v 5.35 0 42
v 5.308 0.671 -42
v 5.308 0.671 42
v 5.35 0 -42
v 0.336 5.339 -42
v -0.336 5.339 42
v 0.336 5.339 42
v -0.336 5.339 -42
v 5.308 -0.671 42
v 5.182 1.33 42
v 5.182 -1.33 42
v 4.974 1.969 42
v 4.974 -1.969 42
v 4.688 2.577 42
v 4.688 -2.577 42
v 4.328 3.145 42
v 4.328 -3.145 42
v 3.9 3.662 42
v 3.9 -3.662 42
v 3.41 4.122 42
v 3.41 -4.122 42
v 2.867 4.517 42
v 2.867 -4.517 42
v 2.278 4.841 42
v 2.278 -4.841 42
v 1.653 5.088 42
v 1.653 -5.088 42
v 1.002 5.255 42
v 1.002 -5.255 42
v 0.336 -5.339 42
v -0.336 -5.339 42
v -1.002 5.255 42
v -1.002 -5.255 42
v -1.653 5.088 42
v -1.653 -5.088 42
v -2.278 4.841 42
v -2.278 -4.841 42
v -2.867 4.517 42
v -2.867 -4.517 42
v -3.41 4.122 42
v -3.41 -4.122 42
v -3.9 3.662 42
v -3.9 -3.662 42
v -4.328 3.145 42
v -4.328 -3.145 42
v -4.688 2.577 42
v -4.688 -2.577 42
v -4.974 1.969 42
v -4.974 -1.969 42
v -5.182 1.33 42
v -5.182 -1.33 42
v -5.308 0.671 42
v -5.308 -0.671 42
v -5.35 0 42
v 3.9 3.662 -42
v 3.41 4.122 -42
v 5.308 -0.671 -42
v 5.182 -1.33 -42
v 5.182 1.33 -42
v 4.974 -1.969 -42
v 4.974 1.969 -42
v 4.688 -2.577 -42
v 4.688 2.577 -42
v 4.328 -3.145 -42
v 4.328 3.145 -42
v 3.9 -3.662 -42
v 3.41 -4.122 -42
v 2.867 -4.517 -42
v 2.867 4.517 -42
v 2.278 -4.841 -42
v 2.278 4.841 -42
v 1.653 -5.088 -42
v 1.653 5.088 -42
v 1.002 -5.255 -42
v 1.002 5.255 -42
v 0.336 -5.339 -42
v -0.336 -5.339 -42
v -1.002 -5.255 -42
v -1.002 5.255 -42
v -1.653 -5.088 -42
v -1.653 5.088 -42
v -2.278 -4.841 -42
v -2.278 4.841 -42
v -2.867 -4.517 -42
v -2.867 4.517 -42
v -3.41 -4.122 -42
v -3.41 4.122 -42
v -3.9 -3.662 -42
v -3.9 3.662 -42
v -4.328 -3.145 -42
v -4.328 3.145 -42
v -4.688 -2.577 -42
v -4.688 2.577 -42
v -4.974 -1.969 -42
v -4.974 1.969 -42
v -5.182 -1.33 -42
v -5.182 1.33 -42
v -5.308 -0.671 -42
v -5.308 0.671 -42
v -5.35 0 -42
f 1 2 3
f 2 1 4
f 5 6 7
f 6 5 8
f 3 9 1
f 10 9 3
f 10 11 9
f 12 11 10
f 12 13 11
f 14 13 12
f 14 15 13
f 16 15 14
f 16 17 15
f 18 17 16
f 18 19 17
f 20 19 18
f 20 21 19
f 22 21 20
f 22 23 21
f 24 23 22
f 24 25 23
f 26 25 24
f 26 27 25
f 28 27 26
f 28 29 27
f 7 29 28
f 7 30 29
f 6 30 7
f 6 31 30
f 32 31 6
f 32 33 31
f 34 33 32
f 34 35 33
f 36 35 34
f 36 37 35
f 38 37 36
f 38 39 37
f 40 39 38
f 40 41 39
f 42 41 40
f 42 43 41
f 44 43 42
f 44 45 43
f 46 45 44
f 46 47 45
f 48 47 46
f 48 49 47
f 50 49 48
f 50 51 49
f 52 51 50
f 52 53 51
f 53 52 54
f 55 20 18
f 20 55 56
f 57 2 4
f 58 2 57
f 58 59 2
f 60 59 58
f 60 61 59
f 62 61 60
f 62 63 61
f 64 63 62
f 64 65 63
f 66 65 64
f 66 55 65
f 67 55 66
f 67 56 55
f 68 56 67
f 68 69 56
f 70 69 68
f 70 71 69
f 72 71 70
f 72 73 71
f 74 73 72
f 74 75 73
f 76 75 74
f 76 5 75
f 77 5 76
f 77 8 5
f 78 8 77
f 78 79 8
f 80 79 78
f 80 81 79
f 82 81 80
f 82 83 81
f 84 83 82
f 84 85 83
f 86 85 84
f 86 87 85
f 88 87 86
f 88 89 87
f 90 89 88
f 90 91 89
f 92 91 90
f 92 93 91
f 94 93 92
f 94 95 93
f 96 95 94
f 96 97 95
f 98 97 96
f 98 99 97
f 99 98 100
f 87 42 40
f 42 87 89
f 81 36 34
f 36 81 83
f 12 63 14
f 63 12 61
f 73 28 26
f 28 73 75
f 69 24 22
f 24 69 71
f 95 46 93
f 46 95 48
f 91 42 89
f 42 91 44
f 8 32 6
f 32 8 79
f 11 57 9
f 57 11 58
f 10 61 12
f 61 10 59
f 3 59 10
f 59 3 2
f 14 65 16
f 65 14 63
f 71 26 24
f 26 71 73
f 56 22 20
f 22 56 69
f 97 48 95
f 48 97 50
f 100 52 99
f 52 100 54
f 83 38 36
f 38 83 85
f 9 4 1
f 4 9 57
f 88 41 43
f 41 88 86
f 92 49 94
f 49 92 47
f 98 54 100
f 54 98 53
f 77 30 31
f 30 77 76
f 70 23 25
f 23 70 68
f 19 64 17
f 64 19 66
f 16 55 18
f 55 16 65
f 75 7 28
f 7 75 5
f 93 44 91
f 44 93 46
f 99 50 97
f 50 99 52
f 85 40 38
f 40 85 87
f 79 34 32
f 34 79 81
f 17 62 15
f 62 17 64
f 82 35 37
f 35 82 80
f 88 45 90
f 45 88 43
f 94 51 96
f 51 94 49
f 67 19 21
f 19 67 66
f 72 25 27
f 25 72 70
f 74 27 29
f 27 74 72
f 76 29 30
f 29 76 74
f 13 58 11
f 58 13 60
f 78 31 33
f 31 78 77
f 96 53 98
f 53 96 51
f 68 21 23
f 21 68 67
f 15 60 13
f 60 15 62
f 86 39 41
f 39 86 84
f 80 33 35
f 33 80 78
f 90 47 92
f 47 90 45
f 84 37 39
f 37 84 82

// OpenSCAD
$fn = 50;


difference() {
	union() {
		translate(v = [0, 0, -42.0000000000]) {
			cylinder(h = 84, r = 5.3500000000);
		}
	}
	union() {
		translate(v = [0, 0, -100.0000000000]) {
			cylinder(h = 200, r = 0);
		}
	}
}
